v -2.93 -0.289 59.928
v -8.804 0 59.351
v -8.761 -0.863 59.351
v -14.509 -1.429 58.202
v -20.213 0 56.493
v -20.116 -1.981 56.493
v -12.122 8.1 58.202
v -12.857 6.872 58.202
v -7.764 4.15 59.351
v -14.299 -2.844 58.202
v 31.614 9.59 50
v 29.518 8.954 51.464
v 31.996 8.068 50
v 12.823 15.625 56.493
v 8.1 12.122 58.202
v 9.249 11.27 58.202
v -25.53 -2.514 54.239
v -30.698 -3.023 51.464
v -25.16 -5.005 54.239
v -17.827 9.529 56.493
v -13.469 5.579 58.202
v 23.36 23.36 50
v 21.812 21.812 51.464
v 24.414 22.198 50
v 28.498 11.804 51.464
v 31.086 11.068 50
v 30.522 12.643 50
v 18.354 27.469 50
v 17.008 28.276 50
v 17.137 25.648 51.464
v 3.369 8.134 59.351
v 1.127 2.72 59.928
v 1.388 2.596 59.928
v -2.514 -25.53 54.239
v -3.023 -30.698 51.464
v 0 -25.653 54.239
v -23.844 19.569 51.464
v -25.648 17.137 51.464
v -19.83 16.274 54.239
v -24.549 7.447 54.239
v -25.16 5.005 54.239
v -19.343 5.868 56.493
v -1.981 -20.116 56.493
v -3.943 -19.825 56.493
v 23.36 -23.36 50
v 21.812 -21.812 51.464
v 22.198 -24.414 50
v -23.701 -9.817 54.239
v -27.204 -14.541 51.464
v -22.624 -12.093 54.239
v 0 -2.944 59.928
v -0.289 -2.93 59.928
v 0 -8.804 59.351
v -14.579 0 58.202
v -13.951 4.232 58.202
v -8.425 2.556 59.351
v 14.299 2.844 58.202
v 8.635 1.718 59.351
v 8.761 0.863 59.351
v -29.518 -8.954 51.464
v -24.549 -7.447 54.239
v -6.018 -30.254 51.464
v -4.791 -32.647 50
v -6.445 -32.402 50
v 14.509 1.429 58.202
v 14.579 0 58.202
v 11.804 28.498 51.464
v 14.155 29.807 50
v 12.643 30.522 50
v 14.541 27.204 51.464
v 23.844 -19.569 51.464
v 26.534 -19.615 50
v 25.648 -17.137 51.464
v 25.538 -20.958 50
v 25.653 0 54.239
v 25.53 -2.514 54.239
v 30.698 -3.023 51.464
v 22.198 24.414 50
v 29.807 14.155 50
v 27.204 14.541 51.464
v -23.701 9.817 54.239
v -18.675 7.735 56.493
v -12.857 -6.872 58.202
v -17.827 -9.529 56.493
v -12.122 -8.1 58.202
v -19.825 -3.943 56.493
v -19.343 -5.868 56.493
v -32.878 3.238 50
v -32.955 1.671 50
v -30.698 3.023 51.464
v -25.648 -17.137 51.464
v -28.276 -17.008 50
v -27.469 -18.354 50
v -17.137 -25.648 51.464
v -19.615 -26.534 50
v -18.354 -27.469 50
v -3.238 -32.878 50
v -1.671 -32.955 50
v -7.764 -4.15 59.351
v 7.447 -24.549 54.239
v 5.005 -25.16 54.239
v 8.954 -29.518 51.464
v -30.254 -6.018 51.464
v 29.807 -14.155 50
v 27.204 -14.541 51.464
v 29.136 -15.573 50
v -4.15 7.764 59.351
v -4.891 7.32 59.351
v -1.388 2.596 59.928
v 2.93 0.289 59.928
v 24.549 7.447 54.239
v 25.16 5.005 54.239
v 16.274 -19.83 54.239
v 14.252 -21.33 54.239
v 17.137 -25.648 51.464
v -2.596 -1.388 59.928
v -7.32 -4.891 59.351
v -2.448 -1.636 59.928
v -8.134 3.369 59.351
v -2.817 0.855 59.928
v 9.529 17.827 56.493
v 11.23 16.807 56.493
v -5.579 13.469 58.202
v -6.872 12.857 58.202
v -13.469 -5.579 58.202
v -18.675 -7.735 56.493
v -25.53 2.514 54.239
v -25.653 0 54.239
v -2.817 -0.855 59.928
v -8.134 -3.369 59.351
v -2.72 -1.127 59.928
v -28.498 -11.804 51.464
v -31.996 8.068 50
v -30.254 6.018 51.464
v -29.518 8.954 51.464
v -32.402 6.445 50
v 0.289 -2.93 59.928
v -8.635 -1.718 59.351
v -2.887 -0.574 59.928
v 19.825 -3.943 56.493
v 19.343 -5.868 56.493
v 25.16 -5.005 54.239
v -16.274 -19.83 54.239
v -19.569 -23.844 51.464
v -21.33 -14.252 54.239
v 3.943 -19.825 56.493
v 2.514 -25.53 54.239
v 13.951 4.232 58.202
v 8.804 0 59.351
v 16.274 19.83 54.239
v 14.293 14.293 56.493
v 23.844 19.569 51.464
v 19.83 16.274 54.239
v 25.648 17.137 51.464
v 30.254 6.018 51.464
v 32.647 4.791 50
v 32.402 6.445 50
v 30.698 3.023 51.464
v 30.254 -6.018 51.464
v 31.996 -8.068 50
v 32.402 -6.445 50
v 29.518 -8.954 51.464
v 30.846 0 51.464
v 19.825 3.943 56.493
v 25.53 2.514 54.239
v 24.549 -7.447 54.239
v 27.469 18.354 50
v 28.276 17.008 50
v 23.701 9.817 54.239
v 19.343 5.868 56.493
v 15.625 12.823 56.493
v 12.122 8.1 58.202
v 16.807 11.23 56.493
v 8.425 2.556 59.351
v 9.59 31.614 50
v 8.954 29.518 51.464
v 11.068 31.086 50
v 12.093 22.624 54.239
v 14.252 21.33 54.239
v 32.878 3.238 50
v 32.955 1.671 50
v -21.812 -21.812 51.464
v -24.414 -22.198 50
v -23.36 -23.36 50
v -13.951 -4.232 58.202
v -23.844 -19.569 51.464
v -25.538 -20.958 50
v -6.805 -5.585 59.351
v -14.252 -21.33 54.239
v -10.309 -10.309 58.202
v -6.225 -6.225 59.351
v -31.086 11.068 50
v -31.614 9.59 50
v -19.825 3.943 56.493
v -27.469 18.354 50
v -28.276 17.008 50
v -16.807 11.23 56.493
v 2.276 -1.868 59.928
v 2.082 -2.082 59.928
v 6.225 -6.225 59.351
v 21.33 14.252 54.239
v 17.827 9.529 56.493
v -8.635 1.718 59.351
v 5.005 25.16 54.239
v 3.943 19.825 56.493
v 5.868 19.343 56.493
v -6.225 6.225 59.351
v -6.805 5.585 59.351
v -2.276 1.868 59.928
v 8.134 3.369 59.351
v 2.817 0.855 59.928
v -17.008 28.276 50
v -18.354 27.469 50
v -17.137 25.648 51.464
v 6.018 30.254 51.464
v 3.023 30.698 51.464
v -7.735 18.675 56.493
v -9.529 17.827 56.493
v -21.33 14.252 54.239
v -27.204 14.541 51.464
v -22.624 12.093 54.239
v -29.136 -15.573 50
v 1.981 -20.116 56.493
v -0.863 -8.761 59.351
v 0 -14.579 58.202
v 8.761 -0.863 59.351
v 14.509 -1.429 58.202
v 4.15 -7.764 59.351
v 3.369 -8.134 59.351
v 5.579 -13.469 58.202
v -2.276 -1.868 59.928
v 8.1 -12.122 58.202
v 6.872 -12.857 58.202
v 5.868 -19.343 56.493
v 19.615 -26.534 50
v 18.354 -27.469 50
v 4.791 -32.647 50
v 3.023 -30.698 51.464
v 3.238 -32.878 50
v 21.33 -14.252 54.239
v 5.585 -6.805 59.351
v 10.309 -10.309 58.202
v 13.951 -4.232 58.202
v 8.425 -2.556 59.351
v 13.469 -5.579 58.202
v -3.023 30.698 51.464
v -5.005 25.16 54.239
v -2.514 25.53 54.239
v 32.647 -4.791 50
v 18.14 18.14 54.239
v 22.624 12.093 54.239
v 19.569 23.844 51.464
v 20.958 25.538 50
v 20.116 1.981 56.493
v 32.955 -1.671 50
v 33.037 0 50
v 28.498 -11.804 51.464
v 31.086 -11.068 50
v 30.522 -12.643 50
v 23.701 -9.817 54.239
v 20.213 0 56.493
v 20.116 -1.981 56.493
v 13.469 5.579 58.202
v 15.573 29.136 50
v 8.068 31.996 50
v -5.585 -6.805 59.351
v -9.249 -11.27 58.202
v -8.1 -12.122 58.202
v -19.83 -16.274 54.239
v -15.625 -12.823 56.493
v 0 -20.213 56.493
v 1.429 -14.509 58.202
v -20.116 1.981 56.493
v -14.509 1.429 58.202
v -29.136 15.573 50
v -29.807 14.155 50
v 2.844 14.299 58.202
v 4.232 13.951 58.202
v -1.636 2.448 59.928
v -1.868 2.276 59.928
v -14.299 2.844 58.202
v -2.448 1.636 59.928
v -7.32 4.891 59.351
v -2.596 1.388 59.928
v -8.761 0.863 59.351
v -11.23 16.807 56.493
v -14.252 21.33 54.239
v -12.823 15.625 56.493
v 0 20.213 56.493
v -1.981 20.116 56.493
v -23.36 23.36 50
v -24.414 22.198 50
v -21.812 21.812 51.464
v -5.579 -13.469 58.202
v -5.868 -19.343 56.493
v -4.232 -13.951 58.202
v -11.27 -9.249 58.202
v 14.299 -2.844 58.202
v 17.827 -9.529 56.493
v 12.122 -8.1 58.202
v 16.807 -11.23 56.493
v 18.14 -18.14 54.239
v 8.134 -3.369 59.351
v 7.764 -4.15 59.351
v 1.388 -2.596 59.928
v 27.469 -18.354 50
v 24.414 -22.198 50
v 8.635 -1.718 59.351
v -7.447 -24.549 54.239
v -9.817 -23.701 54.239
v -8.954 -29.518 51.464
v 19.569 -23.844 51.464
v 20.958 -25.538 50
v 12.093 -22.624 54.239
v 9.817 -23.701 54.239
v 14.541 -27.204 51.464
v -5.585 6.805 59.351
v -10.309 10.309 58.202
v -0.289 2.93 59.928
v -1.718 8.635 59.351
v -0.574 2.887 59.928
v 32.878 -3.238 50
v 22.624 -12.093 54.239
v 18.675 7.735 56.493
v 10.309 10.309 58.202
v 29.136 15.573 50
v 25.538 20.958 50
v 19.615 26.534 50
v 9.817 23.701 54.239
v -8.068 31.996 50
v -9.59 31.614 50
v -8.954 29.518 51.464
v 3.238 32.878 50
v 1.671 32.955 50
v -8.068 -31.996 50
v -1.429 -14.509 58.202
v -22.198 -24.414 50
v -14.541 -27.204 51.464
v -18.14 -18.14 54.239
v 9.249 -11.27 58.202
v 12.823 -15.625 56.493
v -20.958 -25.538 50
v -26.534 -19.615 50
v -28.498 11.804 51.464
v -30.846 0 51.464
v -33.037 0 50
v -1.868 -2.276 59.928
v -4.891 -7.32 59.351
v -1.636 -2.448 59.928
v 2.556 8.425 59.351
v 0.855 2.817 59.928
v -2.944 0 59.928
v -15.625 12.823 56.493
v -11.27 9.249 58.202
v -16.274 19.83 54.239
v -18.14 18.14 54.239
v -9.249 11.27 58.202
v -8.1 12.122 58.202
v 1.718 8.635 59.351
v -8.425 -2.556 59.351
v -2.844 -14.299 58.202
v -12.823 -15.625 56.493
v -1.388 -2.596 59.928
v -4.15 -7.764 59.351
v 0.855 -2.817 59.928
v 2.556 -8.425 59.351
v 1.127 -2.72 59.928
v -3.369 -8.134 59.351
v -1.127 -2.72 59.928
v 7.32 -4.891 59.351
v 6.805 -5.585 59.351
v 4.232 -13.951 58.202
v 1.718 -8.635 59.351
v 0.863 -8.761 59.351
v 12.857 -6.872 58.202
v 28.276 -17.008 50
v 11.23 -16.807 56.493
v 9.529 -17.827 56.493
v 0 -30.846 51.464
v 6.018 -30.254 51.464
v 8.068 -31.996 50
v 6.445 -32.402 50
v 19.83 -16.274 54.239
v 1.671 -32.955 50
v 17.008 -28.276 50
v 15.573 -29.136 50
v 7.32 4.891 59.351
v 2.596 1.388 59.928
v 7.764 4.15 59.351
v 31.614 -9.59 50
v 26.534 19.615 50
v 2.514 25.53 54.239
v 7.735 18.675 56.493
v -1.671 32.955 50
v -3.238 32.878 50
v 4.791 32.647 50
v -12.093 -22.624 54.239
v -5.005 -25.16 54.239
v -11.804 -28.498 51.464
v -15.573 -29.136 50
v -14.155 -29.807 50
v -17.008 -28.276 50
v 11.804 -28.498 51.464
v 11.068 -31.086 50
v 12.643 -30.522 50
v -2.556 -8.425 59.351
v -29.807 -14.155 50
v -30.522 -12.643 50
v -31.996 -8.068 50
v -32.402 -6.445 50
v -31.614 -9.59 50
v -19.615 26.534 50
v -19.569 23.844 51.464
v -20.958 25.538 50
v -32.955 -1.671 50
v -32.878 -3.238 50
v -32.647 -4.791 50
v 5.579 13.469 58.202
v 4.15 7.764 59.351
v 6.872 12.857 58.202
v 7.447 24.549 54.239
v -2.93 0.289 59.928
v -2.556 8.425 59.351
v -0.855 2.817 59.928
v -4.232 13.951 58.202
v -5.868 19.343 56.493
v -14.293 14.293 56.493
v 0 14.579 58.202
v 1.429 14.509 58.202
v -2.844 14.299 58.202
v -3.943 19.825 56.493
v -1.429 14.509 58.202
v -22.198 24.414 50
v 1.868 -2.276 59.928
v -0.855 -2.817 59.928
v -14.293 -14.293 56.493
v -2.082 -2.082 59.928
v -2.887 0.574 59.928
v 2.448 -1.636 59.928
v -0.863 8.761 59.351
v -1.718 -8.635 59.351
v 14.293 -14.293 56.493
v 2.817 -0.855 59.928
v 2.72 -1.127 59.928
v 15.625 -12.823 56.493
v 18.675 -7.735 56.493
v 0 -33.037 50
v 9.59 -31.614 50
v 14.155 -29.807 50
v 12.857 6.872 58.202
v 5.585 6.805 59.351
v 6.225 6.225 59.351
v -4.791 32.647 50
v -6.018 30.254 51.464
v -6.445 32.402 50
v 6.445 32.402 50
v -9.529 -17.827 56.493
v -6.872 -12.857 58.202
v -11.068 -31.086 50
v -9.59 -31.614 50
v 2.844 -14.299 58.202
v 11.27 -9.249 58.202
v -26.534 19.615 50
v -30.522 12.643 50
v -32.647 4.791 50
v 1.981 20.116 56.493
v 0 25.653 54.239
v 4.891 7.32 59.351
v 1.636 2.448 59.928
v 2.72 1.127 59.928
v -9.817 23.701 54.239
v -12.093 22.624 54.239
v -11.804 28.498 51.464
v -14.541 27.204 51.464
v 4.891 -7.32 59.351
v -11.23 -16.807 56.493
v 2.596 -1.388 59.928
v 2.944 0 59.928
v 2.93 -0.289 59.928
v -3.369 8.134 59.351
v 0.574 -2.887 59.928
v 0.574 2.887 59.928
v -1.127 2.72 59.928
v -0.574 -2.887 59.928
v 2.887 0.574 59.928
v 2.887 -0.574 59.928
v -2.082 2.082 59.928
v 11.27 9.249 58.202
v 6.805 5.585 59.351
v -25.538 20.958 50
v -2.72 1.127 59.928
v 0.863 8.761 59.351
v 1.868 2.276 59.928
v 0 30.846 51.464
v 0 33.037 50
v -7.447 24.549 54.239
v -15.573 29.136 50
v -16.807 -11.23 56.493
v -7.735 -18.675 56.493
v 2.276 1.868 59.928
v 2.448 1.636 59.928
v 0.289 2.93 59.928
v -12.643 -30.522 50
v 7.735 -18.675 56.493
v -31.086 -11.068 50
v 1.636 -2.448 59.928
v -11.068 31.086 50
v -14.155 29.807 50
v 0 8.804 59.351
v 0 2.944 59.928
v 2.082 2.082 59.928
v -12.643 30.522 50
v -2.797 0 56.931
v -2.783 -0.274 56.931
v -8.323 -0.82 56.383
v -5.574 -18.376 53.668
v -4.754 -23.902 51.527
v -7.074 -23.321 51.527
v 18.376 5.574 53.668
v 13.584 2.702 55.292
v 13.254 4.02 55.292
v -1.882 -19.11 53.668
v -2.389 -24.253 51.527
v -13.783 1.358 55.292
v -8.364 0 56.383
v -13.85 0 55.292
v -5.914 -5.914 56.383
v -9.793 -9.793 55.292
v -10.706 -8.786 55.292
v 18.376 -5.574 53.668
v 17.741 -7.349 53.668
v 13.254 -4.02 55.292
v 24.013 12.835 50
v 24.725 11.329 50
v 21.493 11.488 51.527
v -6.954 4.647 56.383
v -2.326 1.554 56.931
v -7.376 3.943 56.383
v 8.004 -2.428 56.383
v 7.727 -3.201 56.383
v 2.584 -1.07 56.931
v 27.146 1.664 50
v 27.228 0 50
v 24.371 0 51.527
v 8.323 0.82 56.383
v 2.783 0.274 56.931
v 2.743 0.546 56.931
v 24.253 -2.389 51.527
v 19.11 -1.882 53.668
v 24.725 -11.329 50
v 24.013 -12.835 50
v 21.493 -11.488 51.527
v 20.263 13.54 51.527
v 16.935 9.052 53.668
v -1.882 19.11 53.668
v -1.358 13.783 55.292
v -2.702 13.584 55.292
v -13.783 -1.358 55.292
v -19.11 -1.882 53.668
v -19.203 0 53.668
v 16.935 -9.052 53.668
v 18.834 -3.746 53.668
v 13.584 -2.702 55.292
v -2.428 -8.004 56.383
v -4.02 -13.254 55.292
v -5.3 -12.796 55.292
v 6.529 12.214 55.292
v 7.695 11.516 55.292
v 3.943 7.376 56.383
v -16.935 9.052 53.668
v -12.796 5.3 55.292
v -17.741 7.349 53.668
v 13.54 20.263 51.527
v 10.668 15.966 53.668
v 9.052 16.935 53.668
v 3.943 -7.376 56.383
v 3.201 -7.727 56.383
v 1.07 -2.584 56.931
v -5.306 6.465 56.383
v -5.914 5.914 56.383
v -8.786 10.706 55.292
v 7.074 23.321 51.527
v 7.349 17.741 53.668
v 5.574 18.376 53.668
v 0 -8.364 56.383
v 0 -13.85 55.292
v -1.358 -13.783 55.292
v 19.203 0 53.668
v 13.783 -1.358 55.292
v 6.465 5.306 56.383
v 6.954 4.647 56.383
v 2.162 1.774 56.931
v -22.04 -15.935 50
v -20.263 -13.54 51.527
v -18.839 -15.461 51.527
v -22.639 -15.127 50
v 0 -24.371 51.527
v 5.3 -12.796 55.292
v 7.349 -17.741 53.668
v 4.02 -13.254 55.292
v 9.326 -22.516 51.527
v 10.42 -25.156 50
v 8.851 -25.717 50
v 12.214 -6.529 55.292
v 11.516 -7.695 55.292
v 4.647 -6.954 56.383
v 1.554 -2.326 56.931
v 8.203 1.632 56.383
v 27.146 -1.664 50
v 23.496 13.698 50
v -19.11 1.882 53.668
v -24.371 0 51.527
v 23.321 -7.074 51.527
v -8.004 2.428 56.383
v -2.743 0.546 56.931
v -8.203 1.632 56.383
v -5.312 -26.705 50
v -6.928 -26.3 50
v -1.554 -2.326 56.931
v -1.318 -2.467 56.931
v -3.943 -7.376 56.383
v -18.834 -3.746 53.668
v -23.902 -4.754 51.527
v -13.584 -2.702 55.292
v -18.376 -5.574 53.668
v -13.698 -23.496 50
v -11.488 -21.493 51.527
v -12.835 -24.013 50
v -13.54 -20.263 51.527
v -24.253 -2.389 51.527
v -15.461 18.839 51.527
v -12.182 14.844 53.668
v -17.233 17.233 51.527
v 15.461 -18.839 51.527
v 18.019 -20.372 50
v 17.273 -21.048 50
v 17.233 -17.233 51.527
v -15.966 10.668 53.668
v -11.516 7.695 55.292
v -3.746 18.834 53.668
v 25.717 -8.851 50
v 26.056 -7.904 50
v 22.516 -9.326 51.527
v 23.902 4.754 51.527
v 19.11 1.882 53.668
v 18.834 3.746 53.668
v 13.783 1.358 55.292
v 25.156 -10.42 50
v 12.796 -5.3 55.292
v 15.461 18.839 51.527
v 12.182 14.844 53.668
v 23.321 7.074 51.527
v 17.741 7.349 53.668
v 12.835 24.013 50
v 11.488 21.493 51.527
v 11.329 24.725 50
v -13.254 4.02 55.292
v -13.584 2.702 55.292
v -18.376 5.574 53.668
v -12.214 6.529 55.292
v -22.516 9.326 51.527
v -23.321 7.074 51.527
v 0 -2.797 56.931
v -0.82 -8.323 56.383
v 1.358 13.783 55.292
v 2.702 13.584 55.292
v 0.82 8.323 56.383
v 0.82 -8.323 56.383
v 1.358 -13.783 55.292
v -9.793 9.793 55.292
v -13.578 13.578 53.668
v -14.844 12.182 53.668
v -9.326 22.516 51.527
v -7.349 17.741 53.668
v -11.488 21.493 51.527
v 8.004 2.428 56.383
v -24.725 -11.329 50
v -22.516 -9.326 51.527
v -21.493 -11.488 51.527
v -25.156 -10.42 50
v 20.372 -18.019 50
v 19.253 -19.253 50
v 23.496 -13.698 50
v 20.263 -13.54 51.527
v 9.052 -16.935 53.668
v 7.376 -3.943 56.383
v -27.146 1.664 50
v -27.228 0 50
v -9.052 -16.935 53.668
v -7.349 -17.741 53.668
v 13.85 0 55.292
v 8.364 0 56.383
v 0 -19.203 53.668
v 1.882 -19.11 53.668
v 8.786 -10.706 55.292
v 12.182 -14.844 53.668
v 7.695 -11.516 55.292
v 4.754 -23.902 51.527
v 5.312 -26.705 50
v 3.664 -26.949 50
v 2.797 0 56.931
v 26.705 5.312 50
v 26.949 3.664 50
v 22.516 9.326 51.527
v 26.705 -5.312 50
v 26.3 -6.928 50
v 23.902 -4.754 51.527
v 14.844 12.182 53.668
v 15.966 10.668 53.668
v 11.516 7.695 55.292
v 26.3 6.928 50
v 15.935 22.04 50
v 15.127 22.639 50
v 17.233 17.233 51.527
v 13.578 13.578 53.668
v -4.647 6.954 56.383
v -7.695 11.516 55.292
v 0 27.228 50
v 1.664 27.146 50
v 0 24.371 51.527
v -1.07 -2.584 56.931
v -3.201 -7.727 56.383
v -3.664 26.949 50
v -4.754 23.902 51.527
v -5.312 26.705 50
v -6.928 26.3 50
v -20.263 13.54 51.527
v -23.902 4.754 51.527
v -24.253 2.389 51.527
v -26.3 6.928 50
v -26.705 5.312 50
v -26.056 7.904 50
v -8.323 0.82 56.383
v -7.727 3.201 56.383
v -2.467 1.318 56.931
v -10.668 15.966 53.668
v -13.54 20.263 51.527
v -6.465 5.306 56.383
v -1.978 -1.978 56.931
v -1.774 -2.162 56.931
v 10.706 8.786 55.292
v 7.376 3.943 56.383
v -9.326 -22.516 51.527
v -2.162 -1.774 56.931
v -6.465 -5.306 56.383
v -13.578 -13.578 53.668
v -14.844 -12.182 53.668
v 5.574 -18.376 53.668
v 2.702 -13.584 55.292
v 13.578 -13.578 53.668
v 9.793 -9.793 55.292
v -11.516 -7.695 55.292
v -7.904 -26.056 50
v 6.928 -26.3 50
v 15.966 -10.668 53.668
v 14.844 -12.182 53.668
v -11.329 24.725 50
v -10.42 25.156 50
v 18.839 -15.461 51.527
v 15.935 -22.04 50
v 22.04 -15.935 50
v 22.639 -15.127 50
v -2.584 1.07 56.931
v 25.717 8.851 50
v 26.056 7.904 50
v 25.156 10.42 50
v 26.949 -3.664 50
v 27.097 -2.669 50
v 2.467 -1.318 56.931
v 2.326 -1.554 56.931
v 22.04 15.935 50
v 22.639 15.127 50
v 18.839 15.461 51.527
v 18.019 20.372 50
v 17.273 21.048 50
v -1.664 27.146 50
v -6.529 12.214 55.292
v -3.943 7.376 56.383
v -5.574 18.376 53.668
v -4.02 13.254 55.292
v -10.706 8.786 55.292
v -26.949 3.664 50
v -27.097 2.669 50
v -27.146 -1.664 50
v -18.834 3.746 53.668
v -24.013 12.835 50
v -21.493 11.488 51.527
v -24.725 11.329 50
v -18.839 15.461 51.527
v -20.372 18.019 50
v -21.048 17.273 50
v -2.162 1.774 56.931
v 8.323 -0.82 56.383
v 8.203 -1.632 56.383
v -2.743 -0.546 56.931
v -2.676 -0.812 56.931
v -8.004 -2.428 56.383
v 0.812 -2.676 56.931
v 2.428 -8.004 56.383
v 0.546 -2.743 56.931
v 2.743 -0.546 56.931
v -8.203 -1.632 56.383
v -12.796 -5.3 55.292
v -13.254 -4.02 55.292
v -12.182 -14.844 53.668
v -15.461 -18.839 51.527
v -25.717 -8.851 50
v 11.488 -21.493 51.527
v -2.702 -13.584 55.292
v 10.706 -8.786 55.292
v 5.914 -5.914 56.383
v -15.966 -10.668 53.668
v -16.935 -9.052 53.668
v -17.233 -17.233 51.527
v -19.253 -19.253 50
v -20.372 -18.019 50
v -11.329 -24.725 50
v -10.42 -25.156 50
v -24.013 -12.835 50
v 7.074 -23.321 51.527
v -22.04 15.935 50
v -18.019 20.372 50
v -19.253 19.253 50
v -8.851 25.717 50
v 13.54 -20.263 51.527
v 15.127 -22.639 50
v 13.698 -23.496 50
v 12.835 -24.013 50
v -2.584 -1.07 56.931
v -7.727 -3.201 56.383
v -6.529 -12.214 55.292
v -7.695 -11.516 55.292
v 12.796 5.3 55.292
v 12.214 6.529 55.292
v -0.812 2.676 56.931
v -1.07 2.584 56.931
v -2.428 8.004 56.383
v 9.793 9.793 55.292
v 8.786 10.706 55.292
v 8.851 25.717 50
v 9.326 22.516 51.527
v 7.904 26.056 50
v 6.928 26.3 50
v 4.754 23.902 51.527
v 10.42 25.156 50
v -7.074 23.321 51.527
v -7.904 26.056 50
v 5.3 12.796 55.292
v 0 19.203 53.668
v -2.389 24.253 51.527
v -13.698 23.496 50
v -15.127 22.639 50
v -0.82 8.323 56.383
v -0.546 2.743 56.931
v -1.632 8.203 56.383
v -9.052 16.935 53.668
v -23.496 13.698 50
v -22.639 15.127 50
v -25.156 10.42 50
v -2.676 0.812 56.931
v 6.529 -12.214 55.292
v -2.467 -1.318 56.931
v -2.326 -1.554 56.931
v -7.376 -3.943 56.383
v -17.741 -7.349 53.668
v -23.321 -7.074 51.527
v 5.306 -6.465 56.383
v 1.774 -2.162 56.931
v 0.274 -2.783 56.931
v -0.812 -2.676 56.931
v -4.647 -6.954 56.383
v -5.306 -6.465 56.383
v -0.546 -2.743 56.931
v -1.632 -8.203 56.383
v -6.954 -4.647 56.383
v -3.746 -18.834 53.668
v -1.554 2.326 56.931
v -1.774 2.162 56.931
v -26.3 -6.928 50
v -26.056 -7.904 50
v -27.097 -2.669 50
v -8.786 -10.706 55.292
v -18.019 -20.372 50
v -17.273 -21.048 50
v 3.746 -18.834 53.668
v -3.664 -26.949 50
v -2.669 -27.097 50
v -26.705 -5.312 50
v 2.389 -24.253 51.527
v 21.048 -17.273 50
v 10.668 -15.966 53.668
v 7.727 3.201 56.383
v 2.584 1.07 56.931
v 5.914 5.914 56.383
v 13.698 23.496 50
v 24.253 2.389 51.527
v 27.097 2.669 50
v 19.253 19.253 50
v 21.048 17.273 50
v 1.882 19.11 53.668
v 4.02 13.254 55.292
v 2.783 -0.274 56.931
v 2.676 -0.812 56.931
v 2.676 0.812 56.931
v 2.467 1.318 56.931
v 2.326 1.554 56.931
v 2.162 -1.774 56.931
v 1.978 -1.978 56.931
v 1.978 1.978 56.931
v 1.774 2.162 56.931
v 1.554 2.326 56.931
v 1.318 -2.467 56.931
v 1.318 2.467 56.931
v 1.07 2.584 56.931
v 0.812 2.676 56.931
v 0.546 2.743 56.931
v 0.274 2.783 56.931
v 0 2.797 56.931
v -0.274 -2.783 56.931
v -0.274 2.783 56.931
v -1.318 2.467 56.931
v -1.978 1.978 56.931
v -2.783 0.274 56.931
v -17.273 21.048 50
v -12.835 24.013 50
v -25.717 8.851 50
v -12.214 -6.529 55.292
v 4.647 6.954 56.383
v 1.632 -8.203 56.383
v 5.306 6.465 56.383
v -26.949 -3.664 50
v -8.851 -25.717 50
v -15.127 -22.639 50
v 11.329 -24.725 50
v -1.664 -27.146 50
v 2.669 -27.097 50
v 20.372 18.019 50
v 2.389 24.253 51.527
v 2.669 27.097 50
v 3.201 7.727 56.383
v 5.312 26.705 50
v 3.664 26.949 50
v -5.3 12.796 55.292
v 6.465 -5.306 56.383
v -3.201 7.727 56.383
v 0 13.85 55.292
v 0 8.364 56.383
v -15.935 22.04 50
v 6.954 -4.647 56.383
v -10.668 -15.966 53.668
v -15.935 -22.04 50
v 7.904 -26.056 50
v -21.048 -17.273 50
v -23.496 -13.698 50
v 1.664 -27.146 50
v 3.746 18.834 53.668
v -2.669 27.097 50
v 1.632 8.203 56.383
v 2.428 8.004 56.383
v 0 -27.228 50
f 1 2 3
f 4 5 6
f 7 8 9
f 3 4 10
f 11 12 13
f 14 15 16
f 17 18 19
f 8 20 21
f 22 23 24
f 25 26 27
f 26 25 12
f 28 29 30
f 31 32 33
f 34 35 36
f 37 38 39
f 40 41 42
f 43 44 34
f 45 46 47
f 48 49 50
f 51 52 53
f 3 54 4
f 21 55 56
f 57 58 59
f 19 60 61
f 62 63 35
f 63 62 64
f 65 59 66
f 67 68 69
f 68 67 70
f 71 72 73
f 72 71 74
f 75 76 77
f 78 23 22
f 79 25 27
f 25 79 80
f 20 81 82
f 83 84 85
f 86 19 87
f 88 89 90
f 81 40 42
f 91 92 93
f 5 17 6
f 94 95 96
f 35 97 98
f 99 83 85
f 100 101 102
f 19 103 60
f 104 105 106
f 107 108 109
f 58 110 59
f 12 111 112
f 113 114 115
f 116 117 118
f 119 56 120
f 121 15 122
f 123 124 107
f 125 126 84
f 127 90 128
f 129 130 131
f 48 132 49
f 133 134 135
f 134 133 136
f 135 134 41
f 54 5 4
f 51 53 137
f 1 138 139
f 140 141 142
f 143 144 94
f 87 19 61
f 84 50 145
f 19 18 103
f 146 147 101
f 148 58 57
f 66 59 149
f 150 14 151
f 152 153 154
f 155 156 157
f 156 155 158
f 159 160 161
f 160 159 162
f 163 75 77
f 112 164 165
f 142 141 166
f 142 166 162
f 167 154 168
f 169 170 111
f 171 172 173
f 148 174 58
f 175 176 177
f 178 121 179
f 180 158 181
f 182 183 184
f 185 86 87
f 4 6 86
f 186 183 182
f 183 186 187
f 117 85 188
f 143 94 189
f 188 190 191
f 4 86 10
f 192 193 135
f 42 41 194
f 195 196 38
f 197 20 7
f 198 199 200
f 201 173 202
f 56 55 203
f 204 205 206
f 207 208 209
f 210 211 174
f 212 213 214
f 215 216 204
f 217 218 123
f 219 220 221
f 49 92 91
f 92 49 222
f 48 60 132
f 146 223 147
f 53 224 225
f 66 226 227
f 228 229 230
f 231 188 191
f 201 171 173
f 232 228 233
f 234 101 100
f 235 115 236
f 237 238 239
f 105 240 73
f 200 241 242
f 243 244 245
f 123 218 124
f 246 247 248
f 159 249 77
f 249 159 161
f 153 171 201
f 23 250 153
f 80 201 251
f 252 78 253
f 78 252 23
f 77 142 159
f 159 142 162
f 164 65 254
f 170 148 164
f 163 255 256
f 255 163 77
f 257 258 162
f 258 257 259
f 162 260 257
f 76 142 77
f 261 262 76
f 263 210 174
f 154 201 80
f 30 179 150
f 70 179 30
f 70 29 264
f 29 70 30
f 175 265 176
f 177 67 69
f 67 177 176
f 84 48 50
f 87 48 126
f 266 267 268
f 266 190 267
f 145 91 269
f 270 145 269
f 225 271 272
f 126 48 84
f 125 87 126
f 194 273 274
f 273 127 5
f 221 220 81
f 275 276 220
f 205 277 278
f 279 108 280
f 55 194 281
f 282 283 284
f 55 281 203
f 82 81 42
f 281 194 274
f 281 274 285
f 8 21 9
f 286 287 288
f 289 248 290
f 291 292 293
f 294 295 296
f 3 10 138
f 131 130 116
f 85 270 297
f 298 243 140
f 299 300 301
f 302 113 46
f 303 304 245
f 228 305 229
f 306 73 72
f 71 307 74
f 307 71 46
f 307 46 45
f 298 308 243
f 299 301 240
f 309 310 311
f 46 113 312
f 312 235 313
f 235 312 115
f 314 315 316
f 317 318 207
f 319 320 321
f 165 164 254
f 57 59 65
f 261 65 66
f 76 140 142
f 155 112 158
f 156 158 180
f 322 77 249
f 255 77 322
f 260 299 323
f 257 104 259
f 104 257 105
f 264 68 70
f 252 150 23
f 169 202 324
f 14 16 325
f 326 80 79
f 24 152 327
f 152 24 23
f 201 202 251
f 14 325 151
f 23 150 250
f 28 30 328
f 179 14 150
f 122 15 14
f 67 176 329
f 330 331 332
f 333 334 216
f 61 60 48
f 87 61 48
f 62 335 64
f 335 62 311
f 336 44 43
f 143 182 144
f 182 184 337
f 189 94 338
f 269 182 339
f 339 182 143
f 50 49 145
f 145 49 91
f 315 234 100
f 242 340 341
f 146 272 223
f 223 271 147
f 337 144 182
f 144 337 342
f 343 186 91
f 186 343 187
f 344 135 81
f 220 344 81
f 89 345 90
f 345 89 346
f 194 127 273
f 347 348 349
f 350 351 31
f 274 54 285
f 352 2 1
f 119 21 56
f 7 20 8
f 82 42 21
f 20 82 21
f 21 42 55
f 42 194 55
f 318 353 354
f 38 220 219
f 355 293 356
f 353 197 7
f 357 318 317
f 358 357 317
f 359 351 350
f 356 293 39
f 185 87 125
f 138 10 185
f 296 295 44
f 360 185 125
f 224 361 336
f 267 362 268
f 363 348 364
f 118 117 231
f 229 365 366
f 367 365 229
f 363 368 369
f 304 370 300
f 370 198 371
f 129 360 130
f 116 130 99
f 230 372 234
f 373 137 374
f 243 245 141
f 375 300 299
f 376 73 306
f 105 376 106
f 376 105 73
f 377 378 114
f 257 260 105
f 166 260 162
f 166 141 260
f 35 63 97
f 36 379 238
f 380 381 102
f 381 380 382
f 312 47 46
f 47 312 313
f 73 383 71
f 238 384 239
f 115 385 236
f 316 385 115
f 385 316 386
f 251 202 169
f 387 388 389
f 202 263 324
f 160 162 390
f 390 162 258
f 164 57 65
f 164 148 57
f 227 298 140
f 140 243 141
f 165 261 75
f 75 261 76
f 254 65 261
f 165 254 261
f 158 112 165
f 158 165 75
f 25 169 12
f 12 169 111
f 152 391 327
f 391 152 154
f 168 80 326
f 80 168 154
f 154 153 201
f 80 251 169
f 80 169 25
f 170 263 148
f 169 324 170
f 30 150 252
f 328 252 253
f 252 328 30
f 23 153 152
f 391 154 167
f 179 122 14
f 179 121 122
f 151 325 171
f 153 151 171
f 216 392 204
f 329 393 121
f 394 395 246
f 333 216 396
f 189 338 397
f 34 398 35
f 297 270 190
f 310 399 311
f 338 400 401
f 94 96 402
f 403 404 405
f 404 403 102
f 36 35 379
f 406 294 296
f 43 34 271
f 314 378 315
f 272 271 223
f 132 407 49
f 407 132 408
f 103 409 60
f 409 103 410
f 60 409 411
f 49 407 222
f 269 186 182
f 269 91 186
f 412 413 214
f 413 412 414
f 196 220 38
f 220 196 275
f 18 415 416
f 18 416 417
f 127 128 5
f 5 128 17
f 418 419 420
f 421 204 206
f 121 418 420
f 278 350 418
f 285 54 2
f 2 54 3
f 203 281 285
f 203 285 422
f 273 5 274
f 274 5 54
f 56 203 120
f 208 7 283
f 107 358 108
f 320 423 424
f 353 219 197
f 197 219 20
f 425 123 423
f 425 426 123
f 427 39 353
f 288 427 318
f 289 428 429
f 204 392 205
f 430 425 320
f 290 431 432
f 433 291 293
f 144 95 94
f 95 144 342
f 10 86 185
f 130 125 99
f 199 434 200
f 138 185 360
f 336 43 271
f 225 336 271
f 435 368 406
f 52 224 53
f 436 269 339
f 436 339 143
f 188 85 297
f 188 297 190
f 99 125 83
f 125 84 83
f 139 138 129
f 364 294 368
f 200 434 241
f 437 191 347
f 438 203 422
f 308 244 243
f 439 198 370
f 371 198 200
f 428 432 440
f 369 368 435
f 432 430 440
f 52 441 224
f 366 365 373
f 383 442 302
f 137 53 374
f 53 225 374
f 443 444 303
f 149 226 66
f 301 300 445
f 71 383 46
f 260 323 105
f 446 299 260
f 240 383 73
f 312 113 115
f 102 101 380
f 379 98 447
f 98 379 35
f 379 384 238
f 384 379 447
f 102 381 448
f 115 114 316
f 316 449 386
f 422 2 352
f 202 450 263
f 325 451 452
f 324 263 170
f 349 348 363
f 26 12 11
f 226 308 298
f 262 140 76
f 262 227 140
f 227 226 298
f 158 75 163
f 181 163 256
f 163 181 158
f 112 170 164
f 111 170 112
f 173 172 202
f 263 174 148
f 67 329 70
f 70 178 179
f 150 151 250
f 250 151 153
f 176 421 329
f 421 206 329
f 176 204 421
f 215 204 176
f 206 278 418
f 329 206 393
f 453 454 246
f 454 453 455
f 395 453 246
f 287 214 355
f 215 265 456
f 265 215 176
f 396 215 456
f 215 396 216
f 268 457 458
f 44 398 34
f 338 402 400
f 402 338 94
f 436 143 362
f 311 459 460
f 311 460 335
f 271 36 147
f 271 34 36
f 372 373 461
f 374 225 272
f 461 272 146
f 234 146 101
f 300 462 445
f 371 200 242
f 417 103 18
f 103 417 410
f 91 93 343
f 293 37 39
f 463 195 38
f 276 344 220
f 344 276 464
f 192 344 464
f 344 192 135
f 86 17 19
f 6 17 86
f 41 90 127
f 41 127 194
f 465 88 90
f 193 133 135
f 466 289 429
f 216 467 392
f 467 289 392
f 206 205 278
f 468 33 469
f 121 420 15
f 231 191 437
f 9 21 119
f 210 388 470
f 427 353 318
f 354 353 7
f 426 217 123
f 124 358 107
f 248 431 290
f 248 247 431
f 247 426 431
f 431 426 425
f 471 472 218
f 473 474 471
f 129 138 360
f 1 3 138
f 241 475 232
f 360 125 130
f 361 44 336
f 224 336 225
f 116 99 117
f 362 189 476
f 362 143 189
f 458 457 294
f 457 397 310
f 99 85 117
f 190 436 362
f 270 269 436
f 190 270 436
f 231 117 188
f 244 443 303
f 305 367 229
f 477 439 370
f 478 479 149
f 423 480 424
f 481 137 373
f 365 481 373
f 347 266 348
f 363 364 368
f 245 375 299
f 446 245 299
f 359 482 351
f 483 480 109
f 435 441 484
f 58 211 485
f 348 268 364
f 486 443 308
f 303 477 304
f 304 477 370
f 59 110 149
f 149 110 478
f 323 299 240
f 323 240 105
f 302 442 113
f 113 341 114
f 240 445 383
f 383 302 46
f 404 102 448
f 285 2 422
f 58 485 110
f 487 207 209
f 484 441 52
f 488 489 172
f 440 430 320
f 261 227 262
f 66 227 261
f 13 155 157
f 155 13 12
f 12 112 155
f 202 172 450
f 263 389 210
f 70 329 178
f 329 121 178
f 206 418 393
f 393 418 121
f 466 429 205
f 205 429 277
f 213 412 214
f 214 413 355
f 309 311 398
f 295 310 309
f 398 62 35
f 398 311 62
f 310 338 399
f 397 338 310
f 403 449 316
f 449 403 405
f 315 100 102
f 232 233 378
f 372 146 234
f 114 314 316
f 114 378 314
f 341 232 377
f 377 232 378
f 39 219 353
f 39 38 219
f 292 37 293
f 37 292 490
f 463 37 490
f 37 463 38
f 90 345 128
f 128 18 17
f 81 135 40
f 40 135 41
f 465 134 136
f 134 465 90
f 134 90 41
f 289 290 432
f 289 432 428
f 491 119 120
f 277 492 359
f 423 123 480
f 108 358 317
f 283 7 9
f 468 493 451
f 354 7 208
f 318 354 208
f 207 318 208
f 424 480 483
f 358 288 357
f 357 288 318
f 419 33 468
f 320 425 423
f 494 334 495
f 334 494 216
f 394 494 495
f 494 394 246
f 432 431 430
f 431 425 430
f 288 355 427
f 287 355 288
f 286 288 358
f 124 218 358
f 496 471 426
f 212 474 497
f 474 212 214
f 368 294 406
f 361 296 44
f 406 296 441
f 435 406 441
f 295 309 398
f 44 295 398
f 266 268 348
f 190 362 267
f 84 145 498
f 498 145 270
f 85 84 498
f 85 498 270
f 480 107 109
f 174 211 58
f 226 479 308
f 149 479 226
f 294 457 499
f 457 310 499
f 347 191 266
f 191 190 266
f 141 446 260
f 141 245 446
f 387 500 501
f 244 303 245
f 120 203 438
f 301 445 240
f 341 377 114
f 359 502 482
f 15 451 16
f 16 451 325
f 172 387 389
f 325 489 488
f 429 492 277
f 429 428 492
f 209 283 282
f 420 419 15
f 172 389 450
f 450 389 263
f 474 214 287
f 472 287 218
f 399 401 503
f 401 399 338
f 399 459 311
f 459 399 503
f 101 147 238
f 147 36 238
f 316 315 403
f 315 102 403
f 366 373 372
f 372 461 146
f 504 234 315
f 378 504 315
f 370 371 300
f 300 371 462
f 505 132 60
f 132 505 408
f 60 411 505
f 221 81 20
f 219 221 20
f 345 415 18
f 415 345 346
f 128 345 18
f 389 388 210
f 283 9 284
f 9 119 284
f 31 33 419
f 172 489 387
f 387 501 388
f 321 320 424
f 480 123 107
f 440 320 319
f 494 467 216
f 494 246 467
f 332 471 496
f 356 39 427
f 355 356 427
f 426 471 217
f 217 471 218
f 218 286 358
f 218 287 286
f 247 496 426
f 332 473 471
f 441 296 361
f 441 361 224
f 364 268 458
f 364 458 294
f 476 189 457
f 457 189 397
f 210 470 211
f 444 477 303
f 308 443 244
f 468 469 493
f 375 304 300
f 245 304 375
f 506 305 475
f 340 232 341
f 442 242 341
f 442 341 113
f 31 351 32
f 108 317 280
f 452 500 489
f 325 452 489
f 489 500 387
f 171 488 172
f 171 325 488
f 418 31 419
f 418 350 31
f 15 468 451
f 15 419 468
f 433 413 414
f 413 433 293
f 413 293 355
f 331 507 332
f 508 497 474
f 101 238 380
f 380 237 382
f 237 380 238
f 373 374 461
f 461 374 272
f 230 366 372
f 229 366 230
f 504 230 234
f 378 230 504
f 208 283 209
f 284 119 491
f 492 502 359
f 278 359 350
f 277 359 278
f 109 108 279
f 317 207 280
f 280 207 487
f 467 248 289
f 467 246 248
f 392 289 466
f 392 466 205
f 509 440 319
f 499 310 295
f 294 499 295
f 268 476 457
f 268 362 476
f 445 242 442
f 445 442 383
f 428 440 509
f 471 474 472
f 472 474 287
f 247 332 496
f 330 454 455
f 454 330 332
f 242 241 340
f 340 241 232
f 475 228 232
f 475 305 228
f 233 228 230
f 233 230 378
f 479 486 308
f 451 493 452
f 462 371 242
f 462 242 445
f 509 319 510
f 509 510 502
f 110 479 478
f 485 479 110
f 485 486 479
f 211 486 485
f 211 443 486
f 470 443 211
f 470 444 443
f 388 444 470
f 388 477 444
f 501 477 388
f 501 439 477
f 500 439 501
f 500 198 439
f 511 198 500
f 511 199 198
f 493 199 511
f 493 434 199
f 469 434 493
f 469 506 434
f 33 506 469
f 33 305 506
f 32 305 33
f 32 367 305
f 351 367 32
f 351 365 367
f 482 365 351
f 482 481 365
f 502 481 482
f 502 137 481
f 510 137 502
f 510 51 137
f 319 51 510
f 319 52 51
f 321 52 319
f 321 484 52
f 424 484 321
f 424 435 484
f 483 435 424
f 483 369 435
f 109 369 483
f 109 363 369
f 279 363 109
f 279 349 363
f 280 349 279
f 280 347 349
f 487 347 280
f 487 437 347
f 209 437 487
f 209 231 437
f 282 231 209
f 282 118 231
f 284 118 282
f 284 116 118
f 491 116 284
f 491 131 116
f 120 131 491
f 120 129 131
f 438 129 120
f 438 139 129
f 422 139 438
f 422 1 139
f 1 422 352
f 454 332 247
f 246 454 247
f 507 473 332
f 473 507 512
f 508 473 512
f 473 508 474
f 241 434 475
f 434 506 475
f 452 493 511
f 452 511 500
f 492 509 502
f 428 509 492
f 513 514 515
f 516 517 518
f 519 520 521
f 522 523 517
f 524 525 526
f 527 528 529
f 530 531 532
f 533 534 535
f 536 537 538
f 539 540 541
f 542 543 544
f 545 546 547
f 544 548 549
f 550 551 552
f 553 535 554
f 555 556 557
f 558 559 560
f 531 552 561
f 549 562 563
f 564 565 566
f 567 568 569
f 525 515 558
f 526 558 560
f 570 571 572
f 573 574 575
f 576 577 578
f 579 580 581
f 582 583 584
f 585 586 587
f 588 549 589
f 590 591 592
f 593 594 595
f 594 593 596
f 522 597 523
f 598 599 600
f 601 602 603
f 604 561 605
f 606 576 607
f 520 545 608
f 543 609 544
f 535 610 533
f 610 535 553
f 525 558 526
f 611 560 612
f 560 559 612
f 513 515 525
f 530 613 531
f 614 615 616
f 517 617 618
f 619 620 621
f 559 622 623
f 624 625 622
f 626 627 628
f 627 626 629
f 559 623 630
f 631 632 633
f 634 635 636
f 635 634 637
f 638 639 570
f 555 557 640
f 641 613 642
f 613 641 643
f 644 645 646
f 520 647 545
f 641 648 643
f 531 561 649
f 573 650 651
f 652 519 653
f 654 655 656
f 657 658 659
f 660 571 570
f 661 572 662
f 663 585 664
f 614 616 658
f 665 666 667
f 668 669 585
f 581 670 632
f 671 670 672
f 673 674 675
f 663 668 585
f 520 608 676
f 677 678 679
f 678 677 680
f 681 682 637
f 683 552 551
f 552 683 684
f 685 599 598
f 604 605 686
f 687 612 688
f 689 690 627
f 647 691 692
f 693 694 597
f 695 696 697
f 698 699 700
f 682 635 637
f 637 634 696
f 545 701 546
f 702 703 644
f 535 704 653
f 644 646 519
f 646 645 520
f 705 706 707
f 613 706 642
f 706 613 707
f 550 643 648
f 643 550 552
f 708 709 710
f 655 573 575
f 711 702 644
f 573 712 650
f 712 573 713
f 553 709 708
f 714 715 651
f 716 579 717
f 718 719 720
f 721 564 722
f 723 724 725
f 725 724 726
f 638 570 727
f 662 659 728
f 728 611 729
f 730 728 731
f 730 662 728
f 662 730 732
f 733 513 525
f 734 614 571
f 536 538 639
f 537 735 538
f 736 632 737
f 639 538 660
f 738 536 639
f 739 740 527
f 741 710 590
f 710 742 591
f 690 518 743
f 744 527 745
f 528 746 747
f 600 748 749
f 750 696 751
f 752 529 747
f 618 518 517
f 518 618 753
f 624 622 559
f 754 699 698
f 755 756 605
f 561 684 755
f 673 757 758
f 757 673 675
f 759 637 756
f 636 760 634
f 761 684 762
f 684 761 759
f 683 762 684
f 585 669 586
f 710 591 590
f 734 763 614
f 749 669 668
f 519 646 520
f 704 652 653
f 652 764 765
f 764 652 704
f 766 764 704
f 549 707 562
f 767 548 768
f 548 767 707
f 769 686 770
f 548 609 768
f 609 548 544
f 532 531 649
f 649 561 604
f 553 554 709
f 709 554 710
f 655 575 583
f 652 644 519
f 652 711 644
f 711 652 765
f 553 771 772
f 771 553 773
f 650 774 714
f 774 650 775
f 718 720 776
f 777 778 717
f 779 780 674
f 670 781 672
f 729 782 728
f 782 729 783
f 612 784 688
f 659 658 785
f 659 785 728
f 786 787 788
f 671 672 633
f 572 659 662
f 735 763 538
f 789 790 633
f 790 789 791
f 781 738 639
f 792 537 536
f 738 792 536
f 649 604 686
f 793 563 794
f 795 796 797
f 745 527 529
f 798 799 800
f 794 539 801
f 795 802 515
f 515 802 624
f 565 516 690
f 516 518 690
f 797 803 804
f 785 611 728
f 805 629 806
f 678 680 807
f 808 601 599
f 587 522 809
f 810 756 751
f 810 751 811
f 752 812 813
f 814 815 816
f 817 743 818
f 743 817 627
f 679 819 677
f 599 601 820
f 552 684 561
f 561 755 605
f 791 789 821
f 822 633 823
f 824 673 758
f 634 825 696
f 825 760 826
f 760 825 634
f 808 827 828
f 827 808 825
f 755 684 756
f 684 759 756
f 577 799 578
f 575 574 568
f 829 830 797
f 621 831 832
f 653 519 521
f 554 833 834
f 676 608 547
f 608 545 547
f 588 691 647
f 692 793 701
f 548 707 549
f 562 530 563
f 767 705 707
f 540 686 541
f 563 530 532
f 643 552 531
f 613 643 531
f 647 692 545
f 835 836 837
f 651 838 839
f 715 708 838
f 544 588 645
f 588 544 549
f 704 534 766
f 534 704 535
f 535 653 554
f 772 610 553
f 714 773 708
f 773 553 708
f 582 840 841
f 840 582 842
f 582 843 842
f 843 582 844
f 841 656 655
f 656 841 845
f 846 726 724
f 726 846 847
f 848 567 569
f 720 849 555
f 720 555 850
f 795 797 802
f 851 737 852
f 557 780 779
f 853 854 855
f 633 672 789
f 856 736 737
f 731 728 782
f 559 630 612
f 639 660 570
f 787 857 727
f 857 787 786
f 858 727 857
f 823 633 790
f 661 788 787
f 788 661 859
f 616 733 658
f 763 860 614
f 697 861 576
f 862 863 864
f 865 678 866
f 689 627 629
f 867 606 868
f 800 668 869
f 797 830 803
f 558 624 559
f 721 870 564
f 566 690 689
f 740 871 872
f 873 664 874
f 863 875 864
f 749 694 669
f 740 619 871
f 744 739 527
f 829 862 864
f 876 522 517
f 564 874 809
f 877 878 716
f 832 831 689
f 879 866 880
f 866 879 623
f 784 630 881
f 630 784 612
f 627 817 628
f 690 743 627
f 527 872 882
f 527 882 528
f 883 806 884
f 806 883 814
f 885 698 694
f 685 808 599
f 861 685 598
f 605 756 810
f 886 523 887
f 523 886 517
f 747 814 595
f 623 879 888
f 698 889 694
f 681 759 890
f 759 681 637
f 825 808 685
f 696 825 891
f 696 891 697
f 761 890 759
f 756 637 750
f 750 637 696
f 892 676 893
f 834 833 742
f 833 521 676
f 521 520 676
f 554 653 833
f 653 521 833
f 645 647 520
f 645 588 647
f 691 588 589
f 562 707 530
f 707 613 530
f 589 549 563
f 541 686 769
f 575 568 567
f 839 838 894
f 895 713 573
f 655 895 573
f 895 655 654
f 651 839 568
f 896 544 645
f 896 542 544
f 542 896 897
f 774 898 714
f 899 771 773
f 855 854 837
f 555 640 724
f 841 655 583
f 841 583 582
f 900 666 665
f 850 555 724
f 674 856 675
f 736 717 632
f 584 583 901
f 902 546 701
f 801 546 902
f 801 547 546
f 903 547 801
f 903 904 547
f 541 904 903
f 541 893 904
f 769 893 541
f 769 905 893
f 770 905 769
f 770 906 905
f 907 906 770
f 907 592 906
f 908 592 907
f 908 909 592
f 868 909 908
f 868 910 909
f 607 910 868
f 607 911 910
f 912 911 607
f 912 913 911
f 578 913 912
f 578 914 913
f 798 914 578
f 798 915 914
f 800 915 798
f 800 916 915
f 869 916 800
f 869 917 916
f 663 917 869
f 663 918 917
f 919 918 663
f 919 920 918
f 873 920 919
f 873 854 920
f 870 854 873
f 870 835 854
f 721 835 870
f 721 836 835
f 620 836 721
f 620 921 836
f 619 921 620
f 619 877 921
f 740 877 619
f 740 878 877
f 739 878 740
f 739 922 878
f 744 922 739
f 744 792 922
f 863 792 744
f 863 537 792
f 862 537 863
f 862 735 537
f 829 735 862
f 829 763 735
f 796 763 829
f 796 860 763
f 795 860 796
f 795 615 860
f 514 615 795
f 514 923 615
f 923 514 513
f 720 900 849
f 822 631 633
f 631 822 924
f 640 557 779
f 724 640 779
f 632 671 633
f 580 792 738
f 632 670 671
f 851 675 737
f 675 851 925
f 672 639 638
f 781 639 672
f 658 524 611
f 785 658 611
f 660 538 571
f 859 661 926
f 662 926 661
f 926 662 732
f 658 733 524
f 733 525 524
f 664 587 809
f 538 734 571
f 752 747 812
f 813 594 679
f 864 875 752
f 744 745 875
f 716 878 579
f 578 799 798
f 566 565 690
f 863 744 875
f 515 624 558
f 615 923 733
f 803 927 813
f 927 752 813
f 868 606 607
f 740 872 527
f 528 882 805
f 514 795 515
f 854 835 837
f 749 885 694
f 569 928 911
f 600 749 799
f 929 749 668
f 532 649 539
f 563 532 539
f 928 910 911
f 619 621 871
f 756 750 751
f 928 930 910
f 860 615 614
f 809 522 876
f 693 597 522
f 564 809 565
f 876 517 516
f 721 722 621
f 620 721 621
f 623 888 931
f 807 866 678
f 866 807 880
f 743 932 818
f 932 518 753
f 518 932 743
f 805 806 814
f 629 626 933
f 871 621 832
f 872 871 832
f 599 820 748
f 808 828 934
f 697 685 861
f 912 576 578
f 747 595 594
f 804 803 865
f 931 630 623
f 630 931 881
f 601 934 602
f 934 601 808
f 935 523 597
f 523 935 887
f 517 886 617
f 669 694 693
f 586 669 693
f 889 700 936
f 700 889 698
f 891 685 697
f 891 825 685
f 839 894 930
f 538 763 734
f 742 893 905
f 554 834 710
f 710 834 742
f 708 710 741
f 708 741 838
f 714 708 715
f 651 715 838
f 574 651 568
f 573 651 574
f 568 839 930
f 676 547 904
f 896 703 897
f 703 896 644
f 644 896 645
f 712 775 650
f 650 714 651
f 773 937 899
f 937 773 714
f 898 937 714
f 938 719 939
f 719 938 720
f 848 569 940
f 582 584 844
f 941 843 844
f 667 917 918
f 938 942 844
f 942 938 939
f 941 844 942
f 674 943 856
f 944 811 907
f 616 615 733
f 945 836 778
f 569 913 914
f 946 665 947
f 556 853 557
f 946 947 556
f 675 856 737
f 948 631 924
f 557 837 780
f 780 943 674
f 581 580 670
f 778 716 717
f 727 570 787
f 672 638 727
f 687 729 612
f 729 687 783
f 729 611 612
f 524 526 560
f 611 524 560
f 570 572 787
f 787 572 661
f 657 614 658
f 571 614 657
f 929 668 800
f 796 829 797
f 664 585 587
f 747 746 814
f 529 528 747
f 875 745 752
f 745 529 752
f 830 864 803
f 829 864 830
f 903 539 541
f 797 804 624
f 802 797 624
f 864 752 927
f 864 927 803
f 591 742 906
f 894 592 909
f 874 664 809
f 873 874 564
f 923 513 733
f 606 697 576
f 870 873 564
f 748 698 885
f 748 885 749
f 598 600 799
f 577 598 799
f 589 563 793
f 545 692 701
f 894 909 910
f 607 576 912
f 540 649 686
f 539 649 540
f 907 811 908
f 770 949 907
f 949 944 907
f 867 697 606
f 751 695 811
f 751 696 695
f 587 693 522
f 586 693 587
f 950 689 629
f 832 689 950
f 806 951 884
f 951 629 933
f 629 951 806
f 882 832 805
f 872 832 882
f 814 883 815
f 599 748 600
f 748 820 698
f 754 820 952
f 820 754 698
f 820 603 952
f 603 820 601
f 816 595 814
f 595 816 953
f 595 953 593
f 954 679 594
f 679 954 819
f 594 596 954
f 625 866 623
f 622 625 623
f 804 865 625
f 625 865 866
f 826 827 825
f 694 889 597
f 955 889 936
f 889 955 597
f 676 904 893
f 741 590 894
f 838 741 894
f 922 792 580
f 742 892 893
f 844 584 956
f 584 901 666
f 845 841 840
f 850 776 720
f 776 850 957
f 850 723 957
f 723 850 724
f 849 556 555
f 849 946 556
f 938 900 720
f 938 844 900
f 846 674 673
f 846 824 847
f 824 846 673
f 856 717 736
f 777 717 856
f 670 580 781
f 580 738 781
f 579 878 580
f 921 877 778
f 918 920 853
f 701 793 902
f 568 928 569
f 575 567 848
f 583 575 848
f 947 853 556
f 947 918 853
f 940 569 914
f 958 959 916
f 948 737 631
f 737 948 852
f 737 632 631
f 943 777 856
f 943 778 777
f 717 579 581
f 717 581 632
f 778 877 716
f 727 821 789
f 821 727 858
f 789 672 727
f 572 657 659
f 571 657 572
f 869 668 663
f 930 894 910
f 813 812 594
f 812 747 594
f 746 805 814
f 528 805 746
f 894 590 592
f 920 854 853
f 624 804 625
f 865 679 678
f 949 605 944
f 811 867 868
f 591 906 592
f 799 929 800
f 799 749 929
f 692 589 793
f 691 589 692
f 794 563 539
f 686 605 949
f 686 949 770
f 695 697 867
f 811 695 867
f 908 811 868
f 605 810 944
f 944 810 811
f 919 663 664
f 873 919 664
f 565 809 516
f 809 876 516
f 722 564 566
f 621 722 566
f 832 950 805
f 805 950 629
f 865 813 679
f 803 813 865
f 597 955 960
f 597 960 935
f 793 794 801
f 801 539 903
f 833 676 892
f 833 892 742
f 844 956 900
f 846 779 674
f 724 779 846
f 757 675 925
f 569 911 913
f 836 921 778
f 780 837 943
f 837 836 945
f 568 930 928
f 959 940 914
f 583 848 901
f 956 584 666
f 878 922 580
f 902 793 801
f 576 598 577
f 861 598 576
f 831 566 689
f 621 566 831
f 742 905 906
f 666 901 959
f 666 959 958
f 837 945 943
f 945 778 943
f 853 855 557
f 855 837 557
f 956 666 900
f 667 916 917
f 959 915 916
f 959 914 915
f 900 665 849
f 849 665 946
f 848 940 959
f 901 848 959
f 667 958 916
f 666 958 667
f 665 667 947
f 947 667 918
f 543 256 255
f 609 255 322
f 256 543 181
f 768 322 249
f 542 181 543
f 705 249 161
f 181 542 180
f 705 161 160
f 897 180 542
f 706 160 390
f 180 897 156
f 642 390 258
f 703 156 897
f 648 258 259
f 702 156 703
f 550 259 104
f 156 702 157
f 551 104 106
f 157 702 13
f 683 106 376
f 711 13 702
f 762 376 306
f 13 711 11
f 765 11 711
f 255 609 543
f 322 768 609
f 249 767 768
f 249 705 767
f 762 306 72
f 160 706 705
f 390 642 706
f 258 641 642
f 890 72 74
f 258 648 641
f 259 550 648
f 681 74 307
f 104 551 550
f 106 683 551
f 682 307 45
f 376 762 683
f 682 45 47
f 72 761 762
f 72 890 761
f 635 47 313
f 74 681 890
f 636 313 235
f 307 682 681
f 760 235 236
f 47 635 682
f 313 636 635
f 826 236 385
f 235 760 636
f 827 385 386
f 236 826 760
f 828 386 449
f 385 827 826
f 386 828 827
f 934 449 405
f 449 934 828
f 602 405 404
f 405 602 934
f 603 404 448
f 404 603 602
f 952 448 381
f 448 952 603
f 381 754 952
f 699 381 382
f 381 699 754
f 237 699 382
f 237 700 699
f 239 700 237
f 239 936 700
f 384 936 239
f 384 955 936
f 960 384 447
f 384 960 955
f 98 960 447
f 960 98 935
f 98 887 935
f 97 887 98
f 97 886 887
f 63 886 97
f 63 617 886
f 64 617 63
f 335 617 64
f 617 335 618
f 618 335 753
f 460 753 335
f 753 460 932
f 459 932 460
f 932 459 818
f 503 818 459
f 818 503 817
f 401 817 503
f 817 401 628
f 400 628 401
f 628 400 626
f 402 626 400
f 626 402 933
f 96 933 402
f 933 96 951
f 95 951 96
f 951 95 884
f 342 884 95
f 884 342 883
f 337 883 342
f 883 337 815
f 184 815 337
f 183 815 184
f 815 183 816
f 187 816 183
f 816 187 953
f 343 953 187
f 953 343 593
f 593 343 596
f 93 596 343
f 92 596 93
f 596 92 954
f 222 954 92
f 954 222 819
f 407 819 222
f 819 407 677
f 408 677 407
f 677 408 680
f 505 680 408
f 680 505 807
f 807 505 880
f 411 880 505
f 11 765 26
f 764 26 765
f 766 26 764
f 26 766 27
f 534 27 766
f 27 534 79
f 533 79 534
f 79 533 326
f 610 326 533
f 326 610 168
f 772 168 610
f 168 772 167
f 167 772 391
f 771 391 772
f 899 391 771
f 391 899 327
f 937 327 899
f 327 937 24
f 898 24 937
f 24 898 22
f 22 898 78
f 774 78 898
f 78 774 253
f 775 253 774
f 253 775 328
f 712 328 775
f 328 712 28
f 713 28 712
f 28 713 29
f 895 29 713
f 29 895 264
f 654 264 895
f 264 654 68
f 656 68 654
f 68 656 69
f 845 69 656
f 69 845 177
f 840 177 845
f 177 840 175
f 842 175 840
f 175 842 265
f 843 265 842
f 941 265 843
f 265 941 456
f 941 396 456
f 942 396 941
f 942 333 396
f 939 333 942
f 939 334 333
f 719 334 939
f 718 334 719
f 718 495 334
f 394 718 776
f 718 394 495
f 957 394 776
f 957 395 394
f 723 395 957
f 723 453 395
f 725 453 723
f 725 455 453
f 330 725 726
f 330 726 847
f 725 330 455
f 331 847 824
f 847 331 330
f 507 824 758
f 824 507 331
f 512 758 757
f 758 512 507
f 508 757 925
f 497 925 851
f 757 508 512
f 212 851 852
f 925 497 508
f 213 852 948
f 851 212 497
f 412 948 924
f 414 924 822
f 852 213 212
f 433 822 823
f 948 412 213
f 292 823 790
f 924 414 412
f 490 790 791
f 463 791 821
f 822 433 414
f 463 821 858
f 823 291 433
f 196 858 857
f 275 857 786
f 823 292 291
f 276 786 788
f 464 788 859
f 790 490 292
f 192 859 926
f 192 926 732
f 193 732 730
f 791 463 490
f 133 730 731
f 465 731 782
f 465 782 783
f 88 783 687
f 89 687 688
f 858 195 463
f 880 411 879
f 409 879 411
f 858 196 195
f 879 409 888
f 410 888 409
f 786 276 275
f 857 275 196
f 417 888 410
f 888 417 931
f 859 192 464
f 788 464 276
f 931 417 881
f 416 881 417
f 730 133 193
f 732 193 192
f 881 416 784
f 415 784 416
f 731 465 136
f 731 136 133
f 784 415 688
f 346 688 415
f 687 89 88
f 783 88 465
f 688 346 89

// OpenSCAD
// BambuMaker: Bowl
// @param diameter 120
// @param height 50
// @param wall_thickness 3

diameter       = 120;
height         = 50;
wall_thickness = 3;

$fn = 64;
r = diameter / 2;

difference() {
    sphere(r = r);
    sphere(r = r - wall_thickness);
    translate([0, 0, -r])
        cube([r * 2, r * 2, r * 2], center = true);
    translate([0, 0, height - r])
        cube([r * 2, r * 2, r * 2], center = true);
}
